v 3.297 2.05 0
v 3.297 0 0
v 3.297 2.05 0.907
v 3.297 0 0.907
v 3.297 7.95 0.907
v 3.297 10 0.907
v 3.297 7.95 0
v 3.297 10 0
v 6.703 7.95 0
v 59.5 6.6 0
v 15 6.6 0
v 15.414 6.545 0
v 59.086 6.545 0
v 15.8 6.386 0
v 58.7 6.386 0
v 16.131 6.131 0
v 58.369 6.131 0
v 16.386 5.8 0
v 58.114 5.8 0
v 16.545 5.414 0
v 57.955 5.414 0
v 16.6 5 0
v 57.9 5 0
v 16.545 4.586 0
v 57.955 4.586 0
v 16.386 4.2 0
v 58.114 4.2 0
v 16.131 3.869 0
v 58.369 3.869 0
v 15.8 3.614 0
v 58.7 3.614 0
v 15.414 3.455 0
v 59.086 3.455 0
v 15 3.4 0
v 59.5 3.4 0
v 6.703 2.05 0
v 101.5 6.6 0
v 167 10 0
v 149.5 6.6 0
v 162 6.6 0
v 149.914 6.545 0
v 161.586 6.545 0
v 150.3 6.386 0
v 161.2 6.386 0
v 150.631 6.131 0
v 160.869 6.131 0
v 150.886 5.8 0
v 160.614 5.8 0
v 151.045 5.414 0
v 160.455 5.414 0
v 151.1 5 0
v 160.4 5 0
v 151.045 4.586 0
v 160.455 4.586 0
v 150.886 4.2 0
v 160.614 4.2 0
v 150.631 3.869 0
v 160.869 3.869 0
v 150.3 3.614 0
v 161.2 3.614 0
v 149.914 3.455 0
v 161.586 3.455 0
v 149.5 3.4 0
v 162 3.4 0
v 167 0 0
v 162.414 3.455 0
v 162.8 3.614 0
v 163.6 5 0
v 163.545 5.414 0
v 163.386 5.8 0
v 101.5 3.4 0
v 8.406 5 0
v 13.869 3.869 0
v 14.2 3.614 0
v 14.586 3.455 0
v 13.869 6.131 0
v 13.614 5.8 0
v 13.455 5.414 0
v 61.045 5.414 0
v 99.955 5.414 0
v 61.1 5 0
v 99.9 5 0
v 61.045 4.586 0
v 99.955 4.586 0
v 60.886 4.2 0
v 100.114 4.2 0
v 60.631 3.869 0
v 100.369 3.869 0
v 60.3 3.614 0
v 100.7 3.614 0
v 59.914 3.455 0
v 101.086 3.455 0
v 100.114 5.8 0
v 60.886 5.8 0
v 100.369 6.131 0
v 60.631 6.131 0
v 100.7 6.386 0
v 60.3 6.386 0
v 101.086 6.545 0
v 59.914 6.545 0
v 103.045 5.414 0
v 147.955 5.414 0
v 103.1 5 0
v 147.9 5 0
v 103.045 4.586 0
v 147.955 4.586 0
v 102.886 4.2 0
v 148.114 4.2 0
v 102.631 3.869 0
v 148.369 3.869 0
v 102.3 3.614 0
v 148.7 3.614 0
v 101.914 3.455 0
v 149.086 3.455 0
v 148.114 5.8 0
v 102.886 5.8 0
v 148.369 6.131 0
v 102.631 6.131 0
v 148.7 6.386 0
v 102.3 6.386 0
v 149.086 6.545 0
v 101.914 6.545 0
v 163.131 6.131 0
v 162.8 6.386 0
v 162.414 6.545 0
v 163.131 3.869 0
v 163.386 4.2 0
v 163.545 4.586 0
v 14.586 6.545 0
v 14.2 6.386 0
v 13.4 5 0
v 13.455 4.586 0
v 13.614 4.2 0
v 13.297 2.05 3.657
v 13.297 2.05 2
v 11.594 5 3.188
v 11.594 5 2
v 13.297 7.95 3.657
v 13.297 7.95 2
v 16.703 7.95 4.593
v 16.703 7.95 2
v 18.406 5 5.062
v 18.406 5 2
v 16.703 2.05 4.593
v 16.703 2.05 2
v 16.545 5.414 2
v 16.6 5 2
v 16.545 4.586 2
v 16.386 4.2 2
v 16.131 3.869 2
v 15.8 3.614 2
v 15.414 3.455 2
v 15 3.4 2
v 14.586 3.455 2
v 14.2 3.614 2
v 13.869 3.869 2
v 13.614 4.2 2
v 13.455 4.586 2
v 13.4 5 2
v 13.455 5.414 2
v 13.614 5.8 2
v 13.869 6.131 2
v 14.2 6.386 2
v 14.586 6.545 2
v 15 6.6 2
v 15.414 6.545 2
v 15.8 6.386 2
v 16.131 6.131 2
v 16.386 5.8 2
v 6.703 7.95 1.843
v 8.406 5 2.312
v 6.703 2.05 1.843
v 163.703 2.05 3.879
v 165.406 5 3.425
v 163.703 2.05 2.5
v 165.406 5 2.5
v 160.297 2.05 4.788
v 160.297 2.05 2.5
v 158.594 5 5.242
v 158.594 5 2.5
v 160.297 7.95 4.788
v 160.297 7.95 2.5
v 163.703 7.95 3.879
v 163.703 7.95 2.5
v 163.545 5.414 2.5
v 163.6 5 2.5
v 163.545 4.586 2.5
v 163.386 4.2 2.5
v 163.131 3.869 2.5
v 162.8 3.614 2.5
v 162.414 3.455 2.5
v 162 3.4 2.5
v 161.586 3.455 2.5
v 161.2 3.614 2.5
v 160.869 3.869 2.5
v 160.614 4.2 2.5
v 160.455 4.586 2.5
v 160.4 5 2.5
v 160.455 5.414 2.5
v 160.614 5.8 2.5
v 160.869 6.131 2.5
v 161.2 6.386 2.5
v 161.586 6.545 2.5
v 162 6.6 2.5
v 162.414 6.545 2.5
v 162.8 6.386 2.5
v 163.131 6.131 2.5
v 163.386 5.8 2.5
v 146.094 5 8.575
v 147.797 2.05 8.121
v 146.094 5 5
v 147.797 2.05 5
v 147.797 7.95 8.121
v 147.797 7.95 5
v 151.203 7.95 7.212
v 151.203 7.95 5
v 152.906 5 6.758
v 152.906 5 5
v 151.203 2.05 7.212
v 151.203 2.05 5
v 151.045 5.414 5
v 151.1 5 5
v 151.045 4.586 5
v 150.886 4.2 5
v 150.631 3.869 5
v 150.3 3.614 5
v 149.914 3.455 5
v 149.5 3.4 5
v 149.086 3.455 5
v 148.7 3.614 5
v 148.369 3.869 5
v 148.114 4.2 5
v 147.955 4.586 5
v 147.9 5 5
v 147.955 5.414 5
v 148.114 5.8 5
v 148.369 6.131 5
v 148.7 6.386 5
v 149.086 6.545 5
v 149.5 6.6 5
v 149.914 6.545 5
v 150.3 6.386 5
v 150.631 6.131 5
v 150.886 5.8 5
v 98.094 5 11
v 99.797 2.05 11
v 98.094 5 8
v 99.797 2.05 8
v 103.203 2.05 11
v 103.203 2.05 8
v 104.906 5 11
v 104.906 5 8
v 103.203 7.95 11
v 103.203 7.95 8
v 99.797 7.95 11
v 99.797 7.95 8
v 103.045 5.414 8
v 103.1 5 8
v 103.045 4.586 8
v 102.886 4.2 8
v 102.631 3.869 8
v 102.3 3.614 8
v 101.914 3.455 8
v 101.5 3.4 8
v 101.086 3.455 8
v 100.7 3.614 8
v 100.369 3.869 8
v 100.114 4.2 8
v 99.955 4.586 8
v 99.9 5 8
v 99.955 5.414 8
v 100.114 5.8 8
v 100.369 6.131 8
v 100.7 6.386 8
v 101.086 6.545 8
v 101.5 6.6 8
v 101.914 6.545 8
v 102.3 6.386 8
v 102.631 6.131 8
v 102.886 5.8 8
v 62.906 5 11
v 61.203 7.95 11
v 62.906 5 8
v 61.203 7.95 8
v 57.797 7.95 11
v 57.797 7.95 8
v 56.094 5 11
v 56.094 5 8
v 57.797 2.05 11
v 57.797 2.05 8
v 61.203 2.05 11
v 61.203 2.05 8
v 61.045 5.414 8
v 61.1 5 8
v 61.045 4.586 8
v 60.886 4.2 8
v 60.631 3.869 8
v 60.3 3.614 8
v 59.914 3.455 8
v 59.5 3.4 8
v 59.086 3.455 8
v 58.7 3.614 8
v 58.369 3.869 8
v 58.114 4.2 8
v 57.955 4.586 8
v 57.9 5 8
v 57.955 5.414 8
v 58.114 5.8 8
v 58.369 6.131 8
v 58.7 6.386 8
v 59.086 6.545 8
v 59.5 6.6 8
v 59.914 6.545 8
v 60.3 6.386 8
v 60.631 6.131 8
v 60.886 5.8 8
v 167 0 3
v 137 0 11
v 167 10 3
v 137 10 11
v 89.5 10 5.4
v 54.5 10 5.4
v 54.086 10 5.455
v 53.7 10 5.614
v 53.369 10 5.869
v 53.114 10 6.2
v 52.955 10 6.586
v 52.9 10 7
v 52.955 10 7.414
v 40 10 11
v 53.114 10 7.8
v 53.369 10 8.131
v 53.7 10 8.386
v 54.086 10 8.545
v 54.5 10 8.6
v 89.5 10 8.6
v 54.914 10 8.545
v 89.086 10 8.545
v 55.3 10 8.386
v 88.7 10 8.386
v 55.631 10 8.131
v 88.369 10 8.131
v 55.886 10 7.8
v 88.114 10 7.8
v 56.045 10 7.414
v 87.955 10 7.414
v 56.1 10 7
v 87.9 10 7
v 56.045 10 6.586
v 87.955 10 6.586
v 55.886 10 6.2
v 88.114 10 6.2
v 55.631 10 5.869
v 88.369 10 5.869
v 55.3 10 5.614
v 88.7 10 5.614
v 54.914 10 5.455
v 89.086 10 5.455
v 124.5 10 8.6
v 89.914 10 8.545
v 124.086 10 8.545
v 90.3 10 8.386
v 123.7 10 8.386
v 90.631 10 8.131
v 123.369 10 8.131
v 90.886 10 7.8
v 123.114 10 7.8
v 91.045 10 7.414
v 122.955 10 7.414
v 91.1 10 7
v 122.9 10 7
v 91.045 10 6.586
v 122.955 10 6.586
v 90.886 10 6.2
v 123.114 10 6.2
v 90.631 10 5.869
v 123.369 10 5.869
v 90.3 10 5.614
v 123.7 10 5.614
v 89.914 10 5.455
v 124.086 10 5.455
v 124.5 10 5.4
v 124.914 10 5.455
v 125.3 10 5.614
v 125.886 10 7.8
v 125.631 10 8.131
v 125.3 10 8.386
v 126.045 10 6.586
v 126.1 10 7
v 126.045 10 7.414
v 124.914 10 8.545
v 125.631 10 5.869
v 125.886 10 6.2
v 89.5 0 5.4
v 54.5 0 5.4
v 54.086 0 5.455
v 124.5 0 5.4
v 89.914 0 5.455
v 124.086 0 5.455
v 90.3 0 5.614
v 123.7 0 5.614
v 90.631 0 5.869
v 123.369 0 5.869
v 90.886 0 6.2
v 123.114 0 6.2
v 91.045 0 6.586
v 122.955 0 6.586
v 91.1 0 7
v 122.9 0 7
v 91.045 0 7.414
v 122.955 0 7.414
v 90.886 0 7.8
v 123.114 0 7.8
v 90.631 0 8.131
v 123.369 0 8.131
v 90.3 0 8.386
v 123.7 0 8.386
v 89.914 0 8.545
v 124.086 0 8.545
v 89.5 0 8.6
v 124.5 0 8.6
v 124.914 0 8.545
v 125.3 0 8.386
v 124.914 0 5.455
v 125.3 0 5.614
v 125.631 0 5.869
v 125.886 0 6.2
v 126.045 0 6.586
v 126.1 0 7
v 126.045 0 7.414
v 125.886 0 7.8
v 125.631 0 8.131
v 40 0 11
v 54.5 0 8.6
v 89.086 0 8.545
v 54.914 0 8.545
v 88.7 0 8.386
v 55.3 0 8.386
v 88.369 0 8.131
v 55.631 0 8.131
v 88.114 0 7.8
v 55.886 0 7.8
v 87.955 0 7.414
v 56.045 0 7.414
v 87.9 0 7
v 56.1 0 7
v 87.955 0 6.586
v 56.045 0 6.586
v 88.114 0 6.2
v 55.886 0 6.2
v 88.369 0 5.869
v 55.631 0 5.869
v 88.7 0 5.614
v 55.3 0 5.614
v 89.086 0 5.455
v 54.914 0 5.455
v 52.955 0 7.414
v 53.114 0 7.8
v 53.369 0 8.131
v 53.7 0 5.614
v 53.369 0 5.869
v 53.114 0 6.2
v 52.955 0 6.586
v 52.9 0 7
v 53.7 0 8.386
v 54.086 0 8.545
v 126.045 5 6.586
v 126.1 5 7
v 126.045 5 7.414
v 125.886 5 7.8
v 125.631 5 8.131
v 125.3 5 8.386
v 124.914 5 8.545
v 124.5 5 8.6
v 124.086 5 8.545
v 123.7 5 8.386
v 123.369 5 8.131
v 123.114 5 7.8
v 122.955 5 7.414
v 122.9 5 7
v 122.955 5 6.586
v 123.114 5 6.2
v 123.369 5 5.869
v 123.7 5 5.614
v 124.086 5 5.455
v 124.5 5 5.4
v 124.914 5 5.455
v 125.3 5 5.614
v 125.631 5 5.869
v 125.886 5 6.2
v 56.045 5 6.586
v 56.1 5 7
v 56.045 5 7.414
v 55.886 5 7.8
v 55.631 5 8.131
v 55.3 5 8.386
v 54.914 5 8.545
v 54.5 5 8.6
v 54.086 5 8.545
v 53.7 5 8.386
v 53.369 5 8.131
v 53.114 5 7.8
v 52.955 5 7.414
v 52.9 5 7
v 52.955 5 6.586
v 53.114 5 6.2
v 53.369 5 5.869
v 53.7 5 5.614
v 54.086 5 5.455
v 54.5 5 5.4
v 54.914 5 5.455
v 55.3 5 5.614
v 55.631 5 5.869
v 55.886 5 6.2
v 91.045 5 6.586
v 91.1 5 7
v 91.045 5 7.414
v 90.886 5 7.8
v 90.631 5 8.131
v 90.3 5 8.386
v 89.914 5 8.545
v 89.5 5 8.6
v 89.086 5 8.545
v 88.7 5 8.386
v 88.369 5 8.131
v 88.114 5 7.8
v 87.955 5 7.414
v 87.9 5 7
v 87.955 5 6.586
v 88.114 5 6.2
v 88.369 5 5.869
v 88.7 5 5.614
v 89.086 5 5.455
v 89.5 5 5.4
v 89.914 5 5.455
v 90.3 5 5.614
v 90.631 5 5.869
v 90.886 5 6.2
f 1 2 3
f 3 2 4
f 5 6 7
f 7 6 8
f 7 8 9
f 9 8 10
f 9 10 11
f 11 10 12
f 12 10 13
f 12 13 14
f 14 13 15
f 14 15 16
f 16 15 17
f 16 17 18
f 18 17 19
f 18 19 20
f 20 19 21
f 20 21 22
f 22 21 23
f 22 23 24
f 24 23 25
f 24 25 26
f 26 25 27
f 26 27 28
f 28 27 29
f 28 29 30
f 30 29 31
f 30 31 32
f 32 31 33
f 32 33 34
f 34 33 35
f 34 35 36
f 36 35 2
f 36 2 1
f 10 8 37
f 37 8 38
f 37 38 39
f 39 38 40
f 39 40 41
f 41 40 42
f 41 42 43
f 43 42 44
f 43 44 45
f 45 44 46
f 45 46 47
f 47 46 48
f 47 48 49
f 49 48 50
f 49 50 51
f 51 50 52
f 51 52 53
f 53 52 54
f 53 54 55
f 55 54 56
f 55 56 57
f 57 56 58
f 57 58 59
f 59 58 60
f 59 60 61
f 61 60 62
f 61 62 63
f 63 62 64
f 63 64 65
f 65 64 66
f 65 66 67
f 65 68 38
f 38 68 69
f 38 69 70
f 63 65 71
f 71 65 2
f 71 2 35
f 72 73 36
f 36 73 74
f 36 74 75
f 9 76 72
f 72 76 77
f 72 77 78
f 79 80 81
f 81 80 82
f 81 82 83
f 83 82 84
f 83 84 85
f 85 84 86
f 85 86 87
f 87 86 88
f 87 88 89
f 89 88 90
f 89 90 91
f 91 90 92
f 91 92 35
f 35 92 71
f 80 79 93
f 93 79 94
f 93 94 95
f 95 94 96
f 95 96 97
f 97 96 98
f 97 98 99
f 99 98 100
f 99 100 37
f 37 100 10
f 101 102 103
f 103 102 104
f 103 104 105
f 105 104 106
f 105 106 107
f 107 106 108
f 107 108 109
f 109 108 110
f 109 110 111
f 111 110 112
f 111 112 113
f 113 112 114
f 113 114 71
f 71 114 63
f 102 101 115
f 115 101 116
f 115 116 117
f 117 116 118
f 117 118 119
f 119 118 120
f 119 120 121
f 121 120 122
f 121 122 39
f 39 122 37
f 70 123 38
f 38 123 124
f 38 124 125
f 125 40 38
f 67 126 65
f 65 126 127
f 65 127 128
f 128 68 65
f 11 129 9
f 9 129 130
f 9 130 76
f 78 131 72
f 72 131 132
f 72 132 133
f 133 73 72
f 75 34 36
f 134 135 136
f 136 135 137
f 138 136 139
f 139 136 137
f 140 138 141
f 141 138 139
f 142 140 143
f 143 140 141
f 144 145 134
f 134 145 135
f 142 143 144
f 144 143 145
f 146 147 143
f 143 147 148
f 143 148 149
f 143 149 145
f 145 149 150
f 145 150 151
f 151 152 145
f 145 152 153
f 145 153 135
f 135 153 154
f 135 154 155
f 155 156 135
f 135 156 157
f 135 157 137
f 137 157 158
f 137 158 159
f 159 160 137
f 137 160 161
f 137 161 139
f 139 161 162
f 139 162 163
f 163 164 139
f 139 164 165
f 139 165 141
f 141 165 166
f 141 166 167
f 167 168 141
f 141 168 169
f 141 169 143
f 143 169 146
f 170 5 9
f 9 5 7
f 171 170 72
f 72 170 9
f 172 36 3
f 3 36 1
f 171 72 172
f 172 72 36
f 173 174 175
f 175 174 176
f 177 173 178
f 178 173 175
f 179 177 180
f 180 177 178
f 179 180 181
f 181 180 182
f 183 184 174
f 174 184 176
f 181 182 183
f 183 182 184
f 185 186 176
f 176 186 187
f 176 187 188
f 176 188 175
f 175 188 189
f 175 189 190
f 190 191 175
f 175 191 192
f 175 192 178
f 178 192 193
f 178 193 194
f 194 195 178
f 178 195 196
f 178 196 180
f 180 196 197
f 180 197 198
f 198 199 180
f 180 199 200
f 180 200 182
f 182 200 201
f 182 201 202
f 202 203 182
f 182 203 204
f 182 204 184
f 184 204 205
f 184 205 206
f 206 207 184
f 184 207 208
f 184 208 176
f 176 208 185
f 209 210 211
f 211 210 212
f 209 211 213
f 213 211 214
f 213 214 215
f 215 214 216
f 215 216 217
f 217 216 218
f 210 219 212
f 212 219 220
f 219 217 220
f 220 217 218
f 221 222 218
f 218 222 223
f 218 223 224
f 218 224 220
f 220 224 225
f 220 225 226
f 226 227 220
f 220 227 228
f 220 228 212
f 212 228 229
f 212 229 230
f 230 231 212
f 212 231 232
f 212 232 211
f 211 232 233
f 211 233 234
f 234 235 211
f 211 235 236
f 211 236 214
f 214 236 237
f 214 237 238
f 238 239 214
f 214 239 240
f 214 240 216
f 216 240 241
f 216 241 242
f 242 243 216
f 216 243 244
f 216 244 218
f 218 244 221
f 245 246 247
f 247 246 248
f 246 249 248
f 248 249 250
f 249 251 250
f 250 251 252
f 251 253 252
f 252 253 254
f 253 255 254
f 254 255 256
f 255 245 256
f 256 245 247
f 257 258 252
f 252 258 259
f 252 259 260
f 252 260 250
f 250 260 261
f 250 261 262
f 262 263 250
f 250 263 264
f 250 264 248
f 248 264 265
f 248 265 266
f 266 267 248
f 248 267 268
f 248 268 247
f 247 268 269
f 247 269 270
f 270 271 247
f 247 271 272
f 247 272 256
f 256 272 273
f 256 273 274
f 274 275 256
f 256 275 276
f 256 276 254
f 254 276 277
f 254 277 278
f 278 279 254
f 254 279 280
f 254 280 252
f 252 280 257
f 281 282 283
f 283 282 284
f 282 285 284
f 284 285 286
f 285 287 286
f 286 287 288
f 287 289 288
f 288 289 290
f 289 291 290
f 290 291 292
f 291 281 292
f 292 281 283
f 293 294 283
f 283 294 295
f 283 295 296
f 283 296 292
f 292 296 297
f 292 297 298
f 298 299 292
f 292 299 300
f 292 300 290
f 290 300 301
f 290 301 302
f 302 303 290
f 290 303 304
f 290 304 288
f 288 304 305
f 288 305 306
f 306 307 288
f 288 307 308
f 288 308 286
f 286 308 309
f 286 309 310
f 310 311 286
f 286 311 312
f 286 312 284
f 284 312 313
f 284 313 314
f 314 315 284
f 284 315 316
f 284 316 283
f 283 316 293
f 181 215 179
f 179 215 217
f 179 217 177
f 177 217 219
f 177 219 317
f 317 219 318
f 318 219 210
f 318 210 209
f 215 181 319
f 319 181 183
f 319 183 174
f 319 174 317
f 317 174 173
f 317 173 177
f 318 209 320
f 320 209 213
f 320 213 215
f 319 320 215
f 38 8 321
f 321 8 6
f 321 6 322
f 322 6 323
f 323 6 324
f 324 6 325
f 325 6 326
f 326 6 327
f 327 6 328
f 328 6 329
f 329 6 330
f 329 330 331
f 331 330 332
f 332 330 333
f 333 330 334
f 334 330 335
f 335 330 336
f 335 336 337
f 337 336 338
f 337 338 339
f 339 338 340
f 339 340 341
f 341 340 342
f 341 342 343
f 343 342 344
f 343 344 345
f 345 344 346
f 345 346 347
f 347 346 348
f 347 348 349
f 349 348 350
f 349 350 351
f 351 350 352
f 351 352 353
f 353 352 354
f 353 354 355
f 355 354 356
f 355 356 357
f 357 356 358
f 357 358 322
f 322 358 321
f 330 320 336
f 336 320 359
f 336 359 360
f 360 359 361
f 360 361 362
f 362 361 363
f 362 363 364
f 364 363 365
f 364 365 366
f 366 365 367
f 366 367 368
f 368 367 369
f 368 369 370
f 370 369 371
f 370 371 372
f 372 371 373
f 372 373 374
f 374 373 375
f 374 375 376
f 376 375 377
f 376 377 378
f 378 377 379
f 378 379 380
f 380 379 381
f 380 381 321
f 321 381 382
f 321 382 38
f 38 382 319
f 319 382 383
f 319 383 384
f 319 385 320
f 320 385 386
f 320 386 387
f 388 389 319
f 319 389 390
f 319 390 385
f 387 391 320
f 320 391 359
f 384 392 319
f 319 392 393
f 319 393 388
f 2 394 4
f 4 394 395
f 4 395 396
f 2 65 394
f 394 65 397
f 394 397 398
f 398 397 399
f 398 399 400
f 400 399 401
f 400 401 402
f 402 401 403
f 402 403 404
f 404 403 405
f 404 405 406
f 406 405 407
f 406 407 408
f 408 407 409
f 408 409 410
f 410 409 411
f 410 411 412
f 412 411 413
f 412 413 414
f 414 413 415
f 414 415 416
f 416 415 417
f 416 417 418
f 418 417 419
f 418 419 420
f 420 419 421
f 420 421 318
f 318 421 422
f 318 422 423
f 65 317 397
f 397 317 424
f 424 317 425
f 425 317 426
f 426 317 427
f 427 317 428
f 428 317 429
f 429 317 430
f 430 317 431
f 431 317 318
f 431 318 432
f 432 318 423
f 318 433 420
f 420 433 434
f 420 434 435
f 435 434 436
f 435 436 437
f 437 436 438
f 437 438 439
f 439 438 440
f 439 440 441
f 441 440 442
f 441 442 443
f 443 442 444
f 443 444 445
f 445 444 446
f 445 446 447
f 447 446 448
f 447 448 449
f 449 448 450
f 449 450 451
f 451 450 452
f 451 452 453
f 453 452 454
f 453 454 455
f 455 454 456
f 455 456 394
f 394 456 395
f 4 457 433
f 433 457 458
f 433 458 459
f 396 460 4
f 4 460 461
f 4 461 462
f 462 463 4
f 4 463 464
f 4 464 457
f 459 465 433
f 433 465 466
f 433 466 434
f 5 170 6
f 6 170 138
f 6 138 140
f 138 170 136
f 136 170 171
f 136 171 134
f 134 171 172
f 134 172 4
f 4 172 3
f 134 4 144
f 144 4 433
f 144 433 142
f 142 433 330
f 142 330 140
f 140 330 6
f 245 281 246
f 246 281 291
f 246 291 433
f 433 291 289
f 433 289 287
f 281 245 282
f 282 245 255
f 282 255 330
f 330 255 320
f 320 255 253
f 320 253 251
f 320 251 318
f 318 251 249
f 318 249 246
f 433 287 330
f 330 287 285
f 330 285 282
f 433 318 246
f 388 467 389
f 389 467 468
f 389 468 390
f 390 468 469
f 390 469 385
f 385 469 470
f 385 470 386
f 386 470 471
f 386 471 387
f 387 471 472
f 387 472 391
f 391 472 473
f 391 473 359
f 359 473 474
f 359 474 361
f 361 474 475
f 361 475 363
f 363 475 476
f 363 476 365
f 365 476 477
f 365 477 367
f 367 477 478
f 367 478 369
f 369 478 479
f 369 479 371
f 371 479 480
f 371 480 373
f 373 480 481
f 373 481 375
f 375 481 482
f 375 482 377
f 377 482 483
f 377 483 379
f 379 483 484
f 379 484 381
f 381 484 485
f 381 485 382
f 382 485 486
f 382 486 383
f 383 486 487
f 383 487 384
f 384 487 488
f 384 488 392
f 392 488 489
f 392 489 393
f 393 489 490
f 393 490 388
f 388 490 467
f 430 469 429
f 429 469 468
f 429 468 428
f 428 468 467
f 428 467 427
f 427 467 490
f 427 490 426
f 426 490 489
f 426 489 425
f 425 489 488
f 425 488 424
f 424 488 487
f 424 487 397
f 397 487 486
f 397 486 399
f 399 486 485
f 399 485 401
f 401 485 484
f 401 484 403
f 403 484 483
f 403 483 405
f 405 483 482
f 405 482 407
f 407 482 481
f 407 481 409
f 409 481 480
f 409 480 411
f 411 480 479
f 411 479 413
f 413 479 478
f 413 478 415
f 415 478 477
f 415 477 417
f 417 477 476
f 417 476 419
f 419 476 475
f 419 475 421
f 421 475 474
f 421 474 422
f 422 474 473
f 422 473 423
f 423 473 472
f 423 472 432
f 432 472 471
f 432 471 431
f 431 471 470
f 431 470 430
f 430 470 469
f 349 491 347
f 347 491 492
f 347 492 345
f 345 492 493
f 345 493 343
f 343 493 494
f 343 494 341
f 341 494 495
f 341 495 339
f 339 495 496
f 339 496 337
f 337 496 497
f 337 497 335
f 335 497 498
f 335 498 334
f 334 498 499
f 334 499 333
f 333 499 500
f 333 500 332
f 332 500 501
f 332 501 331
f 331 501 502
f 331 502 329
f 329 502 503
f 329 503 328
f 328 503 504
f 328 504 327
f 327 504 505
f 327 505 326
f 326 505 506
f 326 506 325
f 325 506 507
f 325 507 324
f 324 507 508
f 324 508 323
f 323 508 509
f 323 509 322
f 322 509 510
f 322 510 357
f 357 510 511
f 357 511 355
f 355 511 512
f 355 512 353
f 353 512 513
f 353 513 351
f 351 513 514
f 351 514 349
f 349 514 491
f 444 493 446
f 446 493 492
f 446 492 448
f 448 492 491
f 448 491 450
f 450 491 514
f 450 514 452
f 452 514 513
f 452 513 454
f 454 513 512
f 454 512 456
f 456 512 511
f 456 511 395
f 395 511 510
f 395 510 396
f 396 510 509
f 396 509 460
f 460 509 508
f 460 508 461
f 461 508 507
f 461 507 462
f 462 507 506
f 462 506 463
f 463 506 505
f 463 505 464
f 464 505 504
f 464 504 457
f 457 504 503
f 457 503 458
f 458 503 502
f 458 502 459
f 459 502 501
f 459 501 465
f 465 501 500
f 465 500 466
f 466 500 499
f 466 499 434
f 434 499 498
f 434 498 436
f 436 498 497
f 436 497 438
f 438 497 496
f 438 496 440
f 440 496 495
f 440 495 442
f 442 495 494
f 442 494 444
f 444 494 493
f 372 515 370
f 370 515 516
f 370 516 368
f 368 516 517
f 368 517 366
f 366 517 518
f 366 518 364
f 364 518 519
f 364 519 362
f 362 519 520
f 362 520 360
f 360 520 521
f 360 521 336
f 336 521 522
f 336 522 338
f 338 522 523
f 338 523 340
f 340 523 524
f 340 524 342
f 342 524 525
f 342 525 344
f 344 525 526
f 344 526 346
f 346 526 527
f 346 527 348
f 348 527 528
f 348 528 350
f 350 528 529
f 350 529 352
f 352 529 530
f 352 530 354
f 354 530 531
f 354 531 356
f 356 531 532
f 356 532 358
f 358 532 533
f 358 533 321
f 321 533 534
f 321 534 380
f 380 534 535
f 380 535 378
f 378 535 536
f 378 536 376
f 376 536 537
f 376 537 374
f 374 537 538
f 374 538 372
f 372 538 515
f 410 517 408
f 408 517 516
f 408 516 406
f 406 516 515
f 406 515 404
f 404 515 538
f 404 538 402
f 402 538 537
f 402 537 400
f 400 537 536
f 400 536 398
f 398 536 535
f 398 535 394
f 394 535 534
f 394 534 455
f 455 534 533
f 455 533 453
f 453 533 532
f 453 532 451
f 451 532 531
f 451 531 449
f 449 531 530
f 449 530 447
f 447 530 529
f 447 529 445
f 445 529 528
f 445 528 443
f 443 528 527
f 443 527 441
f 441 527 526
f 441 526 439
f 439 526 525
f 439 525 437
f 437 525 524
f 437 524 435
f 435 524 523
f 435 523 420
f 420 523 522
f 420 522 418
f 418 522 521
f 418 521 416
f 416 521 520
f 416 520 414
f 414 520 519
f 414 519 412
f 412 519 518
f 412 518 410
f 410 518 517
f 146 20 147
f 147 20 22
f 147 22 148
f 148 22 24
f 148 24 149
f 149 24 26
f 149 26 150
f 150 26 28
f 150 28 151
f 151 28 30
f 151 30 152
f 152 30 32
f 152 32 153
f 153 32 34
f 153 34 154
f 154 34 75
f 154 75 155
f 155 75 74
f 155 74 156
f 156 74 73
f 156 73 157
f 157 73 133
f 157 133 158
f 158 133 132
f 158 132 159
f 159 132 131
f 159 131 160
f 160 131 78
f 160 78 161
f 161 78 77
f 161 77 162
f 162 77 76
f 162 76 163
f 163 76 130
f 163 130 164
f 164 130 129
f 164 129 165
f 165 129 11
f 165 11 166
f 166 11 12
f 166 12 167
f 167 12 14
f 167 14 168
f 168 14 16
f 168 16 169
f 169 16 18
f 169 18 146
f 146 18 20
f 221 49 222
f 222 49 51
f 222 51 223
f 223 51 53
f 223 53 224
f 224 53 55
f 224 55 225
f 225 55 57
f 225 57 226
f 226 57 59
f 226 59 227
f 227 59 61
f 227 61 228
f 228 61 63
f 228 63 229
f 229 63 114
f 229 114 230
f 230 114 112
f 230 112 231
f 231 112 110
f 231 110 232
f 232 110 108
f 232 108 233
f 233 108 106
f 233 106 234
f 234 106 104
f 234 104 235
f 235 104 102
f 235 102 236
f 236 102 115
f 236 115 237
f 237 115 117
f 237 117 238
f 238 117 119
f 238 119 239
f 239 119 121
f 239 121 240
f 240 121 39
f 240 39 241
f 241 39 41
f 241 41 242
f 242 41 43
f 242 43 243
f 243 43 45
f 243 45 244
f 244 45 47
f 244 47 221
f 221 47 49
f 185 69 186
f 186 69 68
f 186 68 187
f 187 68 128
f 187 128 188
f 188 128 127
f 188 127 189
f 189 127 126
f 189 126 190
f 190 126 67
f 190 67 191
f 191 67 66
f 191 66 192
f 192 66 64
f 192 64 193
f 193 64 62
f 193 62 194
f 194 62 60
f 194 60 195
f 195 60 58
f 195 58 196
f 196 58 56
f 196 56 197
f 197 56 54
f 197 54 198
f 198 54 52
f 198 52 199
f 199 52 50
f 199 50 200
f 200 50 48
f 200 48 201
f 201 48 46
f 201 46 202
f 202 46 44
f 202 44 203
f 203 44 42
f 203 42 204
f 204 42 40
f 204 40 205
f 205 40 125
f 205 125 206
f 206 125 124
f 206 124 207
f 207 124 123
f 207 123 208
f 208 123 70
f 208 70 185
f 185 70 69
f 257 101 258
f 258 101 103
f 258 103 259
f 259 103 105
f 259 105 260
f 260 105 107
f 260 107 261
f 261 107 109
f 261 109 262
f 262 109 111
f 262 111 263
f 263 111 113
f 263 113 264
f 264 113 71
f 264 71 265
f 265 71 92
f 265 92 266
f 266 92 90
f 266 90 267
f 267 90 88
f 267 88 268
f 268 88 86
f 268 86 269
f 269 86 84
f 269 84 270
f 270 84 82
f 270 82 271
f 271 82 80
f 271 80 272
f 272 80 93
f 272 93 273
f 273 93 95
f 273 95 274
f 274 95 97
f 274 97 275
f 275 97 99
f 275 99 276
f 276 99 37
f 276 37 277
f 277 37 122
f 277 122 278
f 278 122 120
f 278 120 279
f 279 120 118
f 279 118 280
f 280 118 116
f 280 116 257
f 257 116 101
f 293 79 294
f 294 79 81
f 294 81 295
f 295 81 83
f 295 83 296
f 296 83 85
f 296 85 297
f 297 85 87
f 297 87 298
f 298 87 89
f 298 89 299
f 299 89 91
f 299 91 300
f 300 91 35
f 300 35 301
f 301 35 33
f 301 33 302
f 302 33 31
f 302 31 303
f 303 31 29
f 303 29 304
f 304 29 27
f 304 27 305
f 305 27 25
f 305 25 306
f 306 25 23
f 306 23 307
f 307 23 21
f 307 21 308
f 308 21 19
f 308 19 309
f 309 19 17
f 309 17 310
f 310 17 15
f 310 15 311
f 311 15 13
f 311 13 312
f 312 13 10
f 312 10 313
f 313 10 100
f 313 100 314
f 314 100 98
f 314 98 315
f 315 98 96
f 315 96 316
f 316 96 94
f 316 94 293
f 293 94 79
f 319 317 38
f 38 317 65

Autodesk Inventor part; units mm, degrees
ref_plane "YZ Plane" through (0, 0, 0) normal (1, 0, 0) x (0, 1, 0)
ref_plane "XZ Plane" through (0, 0, 0) normal (0, 1, 0) x (-1, 0, 0)
ref_plane "XY Plane" through (0, 0, 0) normal (0, 0, 1) x (1, 0, 0)
sketch "Sketch1" plane through (0, 0, 0) normal (0, 0, 1) x (1, 0, 0)
  line L0 (0, 0) -> (167, 0)
  line L1 (167, 0) -> (167, 10)
  line L2 (167, 10) -> (0, 10)
  line L3 (0, 10) -> (0, 0)
  circle A0 centre (59.5, 5) radius 1.6
  circle A1 centre (101.5, 5) radius 1.6
  circle A2 centre (162, 5) radius 1.6
  circle A3 centre (149.5, 5) radius 1.6
  circle A4 centre (15, 5) radius 1.6
  circle A5 centre (5, 5) radius 1.6
  dimension "d1" = 10
  dimension "d2" = 90
  dimension "d4" = 3.2
  dimension "d6" = 3.2
  dimension "d7" = 3.2
  dimension "d8" = 42
  dimension "d9" = 60.5
  dimension "d26" = 3.2
  dimension "d27" = 48
  dimension "d28" = 3.2
  dimension "d29" = 44.5
  dimension "d32" = 15
  dimension "d33" = 5
  dimension "d61" = 3.2
  dimension "d62" = 10
  dimension "d63" = 12.5
ref_plane "Work Plane2" through (0, 0, 0) normal (0, -1, 0) x (1, 0, 0)
sketch "Sketch2" plane through (0, 0, 0) normal (0, -1, 0) x (1, 0, 0)
  circle A0 centre (54.5, 7) radius 1.6
  circle A1 centre (124.5, 7) radius 1.6
  circle A2 centre (89.5, 7) radius 1.6
  point P0 (0, 0)
  dimension "d13" = 3.2
  dimension "d15" = 3.2
  dimension "d16" = 70
  dimension "d17" = 3.2
  dimension "d18" = 35
  dimension "d64" = 54.5
  dimension "d65" = 35
ref_plane "Work Plane1" through (0, 0, 11) normal (0, 0, 1) x (1, 0, 0)
extrude "klocek" add sketch "Sketch1" along normal blind 11
ref_plane "Work Plane3" through (0, 0, 0) normal (0, -1, 0) x (1, 0, 0)
extrude "prowadzenie osi" cut sketch "Sketch2" against normal up to next
ref_plane "Work Plane4" through (0, 0, 0) normal (0, -1, 0) x (1, 0, 0)
sketch "Sketch7" plane through (0, 0, 0) normal (0, -1, 0) x (1, 0, 0)
  line L0 (0, 11) -> (0, 0)
  line L1 (0, 11) -> (167, 11) projected
  line L2 (0, 11) -> (40, 11)
  line L3 (40, 11) -> (0, 0)
  point P0 (0, -1.8333)
  dimension "d86" = 11
  dimension "d87" = 40
sketch "Sketch8" plane through (0, 0, 0) normal (0, -1, 0) x (1, 0, 0)
  line L0 (167, 0) -> (167, 11) projected
  line L1 (167, 11) -> (167, 3)
  line L2 (167, 11) -> (0, 11) projected
  line L3 (167, 11) -> (137, 11)
  line L4 (137, 11) -> (167, 3)
  point P0 (0, 0)
  point P1 (40.8333, 11)
  dimension "d80" = 8
  dimension "d81" = 30
extrude "przedni skos" cut sketch "Sketch7" against normal up to next
extrude "tylni skos" cut sketch "Sketch8" against normal up to next
ref_plane "Work Plane7" through (0, 0, 11) normal (0, 0, 1) x (1, 0, 0)
sketch "Sketch5" plane through (0, 0, 11) normal (0, 0, 1) x (1, 0, 0)
  line L0 (62.9064, 5) -> (61.2032, 2.05)
  line L1 (61.2032, 2.05) -> (57.7968, 2.05)
  line L2 (57.7968, 2.05) -> (56.0936, 5)
  line L3 (56.0936, 5) -> (57.7968, 7.95)
  line L4 (57.7968, 7.95) -> (61.2032, 7.95)
  line L5 (61.2032, 7.95) -> (62.9064, 5)
  circle A0 centre (101.5, 5) radius 1.6 projected
  line L6 (98.0936, 5) -> (99.7968, 7.95)
  line L7 (99.7968, 7.95) -> (103.2032, 7.95)
  line L8 (103.2032, 7.95) -> (104.9064, 5)
  line L9 (104.9064, 5) -> (103.2032, 2.05)
  line L10 (103.2032, 2.05) -> (99.7968, 2.05)
  line L11 (99.7968, 2.05) -> (98.0936, 5)
  point P0 (59.5, 5)
  point P1 (119.5, 5)
  dimension "d45" = 5.9
  dimension "d98" = 5.9
extrude "hex insert middle" cut sketch "Sketch5" against normal blind 3
ref_plane "Work Plane6" through (0, 0, 11) normal (0, 0, 1) x (1, 0, 0)
sketch "Sketch9" plane through (0, 0, 11) normal (0, 0, 1) x (1, 0, 0)
  circle A0 centre (149.5, 5) radius 1.6 projected
  line L0 (152.9064, 5) -> (151.2032, 2.05)
  line L1 (151.2032, 2.05) -> (147.7968, 2.05)
  line L2 (147.7968, 2.05) -> (146.0936, 5)
  line L3 (146.0936, 5) -> (147.7968, 7.95)
  line L4 (147.7968, 7.95) -> (151.2032, 7.95)
  line L5 (151.2032, 7.95) -> (152.9064, 5)
  point P0 (0, 0)
  point P1 (153, 5)
  dimension "d99" = 5.9
extrude "hex insert rear 1" cut sketch "Sketch9" against normal blind 6
ref_plane "Work Plane5" through (0, 0, 11) normal (0, 0, 1) x (1, 0, 0)
sketch "Sketch10" plane through (0, 0, 11) normal (0, 0, 1) x (1, 0, 0)
  line L0 (160.2968, 7.95) -> (163.7032, 7.95)
  line L1 (163.7032, 7.95) -> (165.4064, 5)
  line L2 (165.4064, 5) -> (163.7032, 2.05)
  line L3 (163.7032, 2.05) -> (160.2968, 2.05)
  line L4 (160.2968, 2.05) -> (158.5936, 5)
  line L5 (158.5936, 5) -> (160.2968, 7.95)
  point P0 (0, 0)
  point P1 (162, 5)
  point P2 (162, 5)
  dimension "d72" = 5.9
extrude "hex insert rear 2" cut sketch "Sketch10" against normal blind 8.5
sketch "Sketch13" plane through (0, 0, 11) normal (0, 0, 1) x (1, 0, 0)
  circle A0 centre (5, 5) radius 1.6 projected
  line L0 (8.4064, 5) -> (6.7032, 2.05)
  line L1 (6.7032, 2.05) -> (3.2968, 2.05)
  line L2 (3.2968, 2.05) -> (1.5936, 5)
  line L3 (1.5936, 5) -> (3.2968, 7.95)
  line L4 (3.2968, 7.95) -> (6.7032, 7.95)
  line L5 (6.7032, 7.95) -> (8.4064, 5)
  point P0 (0, 0)
  dimension "d90" = 5.9
extrude "hex insert front 1" cut sketch "Sketch13" against normal through all
sketch "Sketch16" plane through (0, 0, 11) normal (0, 0, 1) x (1, 0, 0)
  circle A0 centre (15, 5) radius 1.6 projected
  line L0 (18.4064, 5) -> (16.7032, 2.05)
  line L1 (16.7032, 2.05) -> (13.2968, 2.05)
  line L2 (13.2968, 2.05) -> (11.5936, 5)
  line L3 (11.5936, 5) -> (13.2968, 7.95)
  line L4 (13.2968, 7.95) -> (16.7032, 7.95)
  line L5 (16.7032, 7.95) -> (18.4064, 5)
  point P0 (0, 0)
  dimension "d93" = 5.9
extrude "hex insert front 2" cut sketch "Sketch16" against normal blind 9
sketch "Sketch17" plane through (0, 0, 0) normal (0, 0, -1) x (-1, 0, 0)
  line L0 (0, 10) -> (0, 0) projected
  line L1 (0, 0) -> (-3.2968, 0)
  line L2 (-3.2968, 0) -> (-3.2968, 10.0042)
  line L3 (-3.2968, 10.0042) -> (0, 10.0042)
  line L4 (0, 10.0042) -> (0, 0)
extrude "Extrusion20" cut sketch "Sketch17" against normal up to next
properties part number "wheel_support_extra_short"
